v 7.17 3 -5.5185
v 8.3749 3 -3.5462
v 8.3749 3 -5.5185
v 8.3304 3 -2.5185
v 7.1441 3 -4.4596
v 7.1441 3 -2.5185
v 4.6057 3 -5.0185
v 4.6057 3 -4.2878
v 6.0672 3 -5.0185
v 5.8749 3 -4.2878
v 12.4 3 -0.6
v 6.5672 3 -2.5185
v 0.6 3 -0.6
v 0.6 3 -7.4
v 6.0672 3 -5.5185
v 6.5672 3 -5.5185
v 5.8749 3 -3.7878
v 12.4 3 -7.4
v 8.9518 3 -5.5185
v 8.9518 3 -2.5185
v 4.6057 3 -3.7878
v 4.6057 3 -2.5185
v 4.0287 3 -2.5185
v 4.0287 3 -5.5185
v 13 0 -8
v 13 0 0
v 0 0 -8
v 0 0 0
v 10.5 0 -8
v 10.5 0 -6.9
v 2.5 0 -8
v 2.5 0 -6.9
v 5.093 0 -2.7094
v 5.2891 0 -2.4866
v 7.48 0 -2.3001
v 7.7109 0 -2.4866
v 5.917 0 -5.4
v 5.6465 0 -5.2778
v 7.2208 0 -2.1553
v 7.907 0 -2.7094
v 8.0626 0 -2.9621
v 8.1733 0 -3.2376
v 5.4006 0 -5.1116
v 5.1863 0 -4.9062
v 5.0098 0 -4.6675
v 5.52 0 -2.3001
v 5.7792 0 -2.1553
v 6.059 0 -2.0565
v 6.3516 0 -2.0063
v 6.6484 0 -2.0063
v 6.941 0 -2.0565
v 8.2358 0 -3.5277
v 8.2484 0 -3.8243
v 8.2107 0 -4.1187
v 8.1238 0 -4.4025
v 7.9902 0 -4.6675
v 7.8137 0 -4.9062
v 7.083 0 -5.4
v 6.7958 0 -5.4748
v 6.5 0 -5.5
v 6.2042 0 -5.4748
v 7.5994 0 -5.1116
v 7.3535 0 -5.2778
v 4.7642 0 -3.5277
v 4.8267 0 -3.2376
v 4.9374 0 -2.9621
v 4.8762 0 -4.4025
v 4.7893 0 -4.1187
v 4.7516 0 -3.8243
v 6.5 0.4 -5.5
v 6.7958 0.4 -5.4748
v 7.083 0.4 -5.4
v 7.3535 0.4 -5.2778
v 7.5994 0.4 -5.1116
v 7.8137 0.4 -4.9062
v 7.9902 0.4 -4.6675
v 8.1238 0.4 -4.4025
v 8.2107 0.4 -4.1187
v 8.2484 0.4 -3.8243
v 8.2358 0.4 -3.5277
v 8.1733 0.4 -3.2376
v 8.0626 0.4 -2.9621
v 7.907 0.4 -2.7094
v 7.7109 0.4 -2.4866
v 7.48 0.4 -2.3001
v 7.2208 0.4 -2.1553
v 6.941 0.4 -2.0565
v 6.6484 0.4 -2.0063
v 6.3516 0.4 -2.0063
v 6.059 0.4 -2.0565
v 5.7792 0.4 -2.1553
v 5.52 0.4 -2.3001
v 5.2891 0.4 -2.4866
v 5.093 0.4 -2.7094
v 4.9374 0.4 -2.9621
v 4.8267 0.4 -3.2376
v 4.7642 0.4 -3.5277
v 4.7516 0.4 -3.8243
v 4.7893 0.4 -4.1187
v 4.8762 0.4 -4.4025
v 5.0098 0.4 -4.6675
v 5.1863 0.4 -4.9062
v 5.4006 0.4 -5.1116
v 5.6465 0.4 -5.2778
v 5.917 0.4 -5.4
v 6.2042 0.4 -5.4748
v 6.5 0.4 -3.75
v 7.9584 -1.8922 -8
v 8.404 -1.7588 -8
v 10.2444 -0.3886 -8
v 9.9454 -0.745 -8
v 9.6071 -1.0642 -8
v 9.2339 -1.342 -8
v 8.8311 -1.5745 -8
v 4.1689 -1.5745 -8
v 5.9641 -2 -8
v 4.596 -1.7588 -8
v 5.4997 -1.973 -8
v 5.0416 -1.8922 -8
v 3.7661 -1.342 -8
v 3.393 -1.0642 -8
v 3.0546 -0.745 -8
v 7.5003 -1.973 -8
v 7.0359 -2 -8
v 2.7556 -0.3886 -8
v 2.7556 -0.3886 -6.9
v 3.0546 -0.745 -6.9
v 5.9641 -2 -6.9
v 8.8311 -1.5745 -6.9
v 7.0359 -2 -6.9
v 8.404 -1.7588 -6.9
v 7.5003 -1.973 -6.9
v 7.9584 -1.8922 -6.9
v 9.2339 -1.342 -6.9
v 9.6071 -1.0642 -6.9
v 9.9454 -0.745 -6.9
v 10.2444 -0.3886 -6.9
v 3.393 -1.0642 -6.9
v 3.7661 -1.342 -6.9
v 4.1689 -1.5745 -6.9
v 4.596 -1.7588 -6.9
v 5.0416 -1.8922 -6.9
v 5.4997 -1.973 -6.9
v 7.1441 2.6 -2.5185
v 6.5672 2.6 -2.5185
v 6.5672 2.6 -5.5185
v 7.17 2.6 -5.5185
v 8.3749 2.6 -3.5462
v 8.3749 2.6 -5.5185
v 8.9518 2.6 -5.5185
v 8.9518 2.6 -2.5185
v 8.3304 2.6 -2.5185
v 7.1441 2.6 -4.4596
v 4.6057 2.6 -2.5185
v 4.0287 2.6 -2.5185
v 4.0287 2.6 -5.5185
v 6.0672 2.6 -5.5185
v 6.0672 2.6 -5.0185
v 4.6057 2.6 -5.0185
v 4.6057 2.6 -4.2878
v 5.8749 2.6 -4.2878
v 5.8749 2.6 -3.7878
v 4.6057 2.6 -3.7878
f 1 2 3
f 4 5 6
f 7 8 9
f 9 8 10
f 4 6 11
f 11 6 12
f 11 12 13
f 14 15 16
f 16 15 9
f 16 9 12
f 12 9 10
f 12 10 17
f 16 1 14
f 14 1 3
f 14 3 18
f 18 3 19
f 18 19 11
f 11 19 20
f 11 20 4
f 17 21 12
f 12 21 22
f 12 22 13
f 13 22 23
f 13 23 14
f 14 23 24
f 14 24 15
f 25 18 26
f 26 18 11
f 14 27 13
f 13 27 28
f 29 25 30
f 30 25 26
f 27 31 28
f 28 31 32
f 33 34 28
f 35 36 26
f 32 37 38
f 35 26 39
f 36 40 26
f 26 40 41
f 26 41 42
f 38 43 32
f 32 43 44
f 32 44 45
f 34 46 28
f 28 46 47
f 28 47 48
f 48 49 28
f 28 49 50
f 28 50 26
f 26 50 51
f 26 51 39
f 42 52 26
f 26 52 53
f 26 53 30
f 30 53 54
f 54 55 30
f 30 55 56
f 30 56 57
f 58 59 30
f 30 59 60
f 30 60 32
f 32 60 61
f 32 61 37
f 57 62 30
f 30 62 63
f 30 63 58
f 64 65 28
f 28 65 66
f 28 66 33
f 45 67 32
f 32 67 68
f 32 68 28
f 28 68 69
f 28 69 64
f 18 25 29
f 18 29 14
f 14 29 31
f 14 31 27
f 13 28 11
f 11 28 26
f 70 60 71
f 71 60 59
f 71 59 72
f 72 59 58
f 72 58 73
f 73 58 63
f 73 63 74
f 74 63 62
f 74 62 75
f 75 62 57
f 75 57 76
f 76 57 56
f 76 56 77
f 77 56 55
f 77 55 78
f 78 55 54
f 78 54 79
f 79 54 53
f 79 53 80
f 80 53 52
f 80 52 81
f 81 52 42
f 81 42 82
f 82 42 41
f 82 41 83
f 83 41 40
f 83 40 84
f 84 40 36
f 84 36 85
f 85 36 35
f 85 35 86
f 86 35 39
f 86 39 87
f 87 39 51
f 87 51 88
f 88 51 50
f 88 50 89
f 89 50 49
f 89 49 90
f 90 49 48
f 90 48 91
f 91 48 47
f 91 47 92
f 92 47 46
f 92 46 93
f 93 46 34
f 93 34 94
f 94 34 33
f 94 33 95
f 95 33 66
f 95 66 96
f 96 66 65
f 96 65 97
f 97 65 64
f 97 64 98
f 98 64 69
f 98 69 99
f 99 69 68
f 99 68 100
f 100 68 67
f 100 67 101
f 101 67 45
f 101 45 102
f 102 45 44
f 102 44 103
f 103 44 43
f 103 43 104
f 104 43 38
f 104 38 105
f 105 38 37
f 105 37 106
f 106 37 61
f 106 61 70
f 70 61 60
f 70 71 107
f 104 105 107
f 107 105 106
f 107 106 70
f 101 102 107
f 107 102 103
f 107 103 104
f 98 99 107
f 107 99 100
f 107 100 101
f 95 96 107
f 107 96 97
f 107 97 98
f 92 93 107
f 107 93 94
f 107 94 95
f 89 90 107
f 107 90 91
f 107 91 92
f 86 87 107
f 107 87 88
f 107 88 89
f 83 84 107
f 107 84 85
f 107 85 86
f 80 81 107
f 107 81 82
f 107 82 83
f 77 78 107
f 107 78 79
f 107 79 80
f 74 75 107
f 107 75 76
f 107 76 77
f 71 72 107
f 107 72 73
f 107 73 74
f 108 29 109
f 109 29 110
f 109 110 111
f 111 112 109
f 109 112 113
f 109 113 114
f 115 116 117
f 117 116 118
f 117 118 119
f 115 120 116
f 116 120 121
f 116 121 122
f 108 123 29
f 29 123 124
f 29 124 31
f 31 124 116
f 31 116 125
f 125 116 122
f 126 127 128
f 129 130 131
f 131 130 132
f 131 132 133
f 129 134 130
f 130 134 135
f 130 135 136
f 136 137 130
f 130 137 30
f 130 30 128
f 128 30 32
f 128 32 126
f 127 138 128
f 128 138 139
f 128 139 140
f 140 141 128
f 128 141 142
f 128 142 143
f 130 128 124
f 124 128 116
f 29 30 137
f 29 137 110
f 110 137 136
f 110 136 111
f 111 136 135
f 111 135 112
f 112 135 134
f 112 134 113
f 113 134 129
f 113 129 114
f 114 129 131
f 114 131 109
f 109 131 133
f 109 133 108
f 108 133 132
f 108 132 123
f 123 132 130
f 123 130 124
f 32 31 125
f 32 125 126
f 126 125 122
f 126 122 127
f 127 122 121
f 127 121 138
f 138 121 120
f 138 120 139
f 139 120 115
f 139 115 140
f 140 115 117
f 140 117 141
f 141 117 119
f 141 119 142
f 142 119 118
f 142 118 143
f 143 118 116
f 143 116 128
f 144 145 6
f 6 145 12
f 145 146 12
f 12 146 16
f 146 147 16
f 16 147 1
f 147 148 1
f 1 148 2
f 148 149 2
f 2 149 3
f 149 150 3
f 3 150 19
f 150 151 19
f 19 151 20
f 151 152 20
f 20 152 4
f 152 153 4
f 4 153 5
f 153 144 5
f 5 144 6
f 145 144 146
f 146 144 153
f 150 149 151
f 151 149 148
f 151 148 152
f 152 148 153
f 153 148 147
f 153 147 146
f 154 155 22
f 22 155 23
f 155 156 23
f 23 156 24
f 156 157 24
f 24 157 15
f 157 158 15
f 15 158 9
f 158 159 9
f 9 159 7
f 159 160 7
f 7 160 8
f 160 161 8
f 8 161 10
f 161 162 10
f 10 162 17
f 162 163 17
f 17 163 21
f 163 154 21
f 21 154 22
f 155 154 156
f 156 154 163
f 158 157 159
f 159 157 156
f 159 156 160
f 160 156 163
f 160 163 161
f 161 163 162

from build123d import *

# Parameters (mm, degrees)
SKETCH1_W               = 13
SKETCH1_H               = 8
BOSS_EXTRUDE1_DEPTH     = 3
CUT_EXTRUDE1_DEPTH      = 16.556349186
CUT_EXTRUDE1_DEPTH_BACK = 16.556349186
CUT_EXTRUDE2_DEPTH      = 16.556349186
CUT_EXTRUDE2_DEPTH_BACK = 16.556349186
SKETCH4_R               = 1.75
CUT_EXTRUDE3_DEPTH      = 0.4
SKETCH5_W               = 8
SKETCH5_H               = 1.1
BOSS_EXTRUDE2_DEPTH     = 2
FILLET1_R               = 4
CUT_EXTRUDE4_DEPTH      = 0.4


with BuildPart() as part:
    # Sketch1 → Boss-Extrude1 (new body)
    with BuildSketch(Plane(origin=(0, 0, 0), x_dir=(1, 0, 0), z_dir=(0, 1, 0))):
        with Locations((6.5, 4)):
            Rectangle(SKETCH1_W, SKETCH1_H)
    extrude(amount=BOSS_EXTRUDE1_DEPTH)

    # Sketch2 → Cut-Extrude1 (cut, two sides: drawn at the far end of the back side and taken through both)
    with BuildSketch(Plane.XY.offset(-CUT_EXTRUDE1_DEPTH_BACK)):
        Polygon((0, 0), (0.6, 3), (0, 3), align=None)
        Polygon((13, 0), (12.4, 3), (13, 3), align=None)
    extrude(amount=CUT_EXTRUDE1_DEPTH + CUT_EXTRUDE1_DEPTH_BACK, mode=Mode.SUBTRACT)

    # Sketch3 → Cut-Extrude2 (cut, two sides: drawn at the far end of the back side and taken through both)
    with BuildSketch(Plane(origin=(0, 0, 0), x_dir=(0, 0, -1), z_dir=(1, 0, 0)).offset(-CUT_EXTRUDE2_DEPTH_BACK)):
        Polygon((0, 0), (0.6, 3), (0, 3), align=None)
        Polygon((8, 3), (7.4, 3), (8, 0), align=None)
    extrude(amount=CUT_EXTRUDE2_DEPTH + CUT_EXTRUDE2_DEPTH_BACK, mode=Mode.SUBTRACT)

    # Sketch4 → Cut-Extrude3 (cut)
    with BuildSketch(Plane.XZ):
        with Locations(Location((6.50000125, -3.75, 0), (0, 0, 270))):
            Circle(SKETCH4_R)
    extrude(amount=-CUT_EXTRUDE3_DEPTH, mode=Mode.SUBTRACT)

    # Sketch5 → Boss-Extrude2 (add)
    with BuildSketch(Plane.XZ):
        with Locations((6.500011, -7.45)):
            Rectangle(SKETCH5_W, SKETCH5_H)
    extrude(amount=BOSS_EXTRUDE2_DEPTH)

    # Fillet1
    # the kernel refuses this fillet: 4 mm, written as the material it takes off along each edge
    with BuildSketch(Plane(origin=(10.500011, -2, -16.660254038), x_dir=(0, 1, 0), z_dir=(0, 0, 1)), Plane(origin=(2.500011, -2, 1.760254038), x_dir=(0, 1, 0), z_dir=(0, 0, -1))) as fillet1_piece_1:
        with BuildLine():
            CenterArc((4, 3.464101615), FILLET1_R, 180, 60)
            Line((0, 3.464101615), (-0.08, 3.464101615))
            Line((-0.08, 3.464101615), (-0.08, 0))
            Line((-0.08, 0), (0, -0.08))
            ThreePointArc((0, -0.08), (1, -0.08), (1.96, -0.069282032))
            Line((1.96, -0.069282032), (2, 0))
        make_face()
    extrude(amount=18.420508076, mode=Mode.SUBTRACT)

    # Sketch6 → Cut-Extrude4 (cut)
    with BuildSketch(Plane(origin=(0, 3, 0), x_dir=(1, 0, 0), z_dir=(0, 1, 0))):
        Polygon((4.028737707, 2.518536397), (4.028737707, 5.518536397), (6.067199245, 5.518536397), (6.067199245, 5.018536397), (4.605660784, 5.018536397), (4.605660784, 4.287767167), (5.874891553, 4.287767167), (5.874891553, 3.787767167), (4.605660784, 3.787767167), (4.605660784, 2.518536397), align=None)
        Polygon((6.567199245, 2.518536397), (6.567199245, 5.518536397), (7.169963668, 5.518536397), (8.374891553, 3.546180628), (8.374891553, 5.518536397), (8.95181463, 5.518536397), (8.95181463, 2.518536397), (8.330420399, 2.518536397), (7.144122322, 4.459642167), (7.144122322, 2.518536397), align=None)
    extrude(amount=-CUT_EXTRUDE4_DEPTH, mode=Mode.SUBTRACT)


solid = part.part
